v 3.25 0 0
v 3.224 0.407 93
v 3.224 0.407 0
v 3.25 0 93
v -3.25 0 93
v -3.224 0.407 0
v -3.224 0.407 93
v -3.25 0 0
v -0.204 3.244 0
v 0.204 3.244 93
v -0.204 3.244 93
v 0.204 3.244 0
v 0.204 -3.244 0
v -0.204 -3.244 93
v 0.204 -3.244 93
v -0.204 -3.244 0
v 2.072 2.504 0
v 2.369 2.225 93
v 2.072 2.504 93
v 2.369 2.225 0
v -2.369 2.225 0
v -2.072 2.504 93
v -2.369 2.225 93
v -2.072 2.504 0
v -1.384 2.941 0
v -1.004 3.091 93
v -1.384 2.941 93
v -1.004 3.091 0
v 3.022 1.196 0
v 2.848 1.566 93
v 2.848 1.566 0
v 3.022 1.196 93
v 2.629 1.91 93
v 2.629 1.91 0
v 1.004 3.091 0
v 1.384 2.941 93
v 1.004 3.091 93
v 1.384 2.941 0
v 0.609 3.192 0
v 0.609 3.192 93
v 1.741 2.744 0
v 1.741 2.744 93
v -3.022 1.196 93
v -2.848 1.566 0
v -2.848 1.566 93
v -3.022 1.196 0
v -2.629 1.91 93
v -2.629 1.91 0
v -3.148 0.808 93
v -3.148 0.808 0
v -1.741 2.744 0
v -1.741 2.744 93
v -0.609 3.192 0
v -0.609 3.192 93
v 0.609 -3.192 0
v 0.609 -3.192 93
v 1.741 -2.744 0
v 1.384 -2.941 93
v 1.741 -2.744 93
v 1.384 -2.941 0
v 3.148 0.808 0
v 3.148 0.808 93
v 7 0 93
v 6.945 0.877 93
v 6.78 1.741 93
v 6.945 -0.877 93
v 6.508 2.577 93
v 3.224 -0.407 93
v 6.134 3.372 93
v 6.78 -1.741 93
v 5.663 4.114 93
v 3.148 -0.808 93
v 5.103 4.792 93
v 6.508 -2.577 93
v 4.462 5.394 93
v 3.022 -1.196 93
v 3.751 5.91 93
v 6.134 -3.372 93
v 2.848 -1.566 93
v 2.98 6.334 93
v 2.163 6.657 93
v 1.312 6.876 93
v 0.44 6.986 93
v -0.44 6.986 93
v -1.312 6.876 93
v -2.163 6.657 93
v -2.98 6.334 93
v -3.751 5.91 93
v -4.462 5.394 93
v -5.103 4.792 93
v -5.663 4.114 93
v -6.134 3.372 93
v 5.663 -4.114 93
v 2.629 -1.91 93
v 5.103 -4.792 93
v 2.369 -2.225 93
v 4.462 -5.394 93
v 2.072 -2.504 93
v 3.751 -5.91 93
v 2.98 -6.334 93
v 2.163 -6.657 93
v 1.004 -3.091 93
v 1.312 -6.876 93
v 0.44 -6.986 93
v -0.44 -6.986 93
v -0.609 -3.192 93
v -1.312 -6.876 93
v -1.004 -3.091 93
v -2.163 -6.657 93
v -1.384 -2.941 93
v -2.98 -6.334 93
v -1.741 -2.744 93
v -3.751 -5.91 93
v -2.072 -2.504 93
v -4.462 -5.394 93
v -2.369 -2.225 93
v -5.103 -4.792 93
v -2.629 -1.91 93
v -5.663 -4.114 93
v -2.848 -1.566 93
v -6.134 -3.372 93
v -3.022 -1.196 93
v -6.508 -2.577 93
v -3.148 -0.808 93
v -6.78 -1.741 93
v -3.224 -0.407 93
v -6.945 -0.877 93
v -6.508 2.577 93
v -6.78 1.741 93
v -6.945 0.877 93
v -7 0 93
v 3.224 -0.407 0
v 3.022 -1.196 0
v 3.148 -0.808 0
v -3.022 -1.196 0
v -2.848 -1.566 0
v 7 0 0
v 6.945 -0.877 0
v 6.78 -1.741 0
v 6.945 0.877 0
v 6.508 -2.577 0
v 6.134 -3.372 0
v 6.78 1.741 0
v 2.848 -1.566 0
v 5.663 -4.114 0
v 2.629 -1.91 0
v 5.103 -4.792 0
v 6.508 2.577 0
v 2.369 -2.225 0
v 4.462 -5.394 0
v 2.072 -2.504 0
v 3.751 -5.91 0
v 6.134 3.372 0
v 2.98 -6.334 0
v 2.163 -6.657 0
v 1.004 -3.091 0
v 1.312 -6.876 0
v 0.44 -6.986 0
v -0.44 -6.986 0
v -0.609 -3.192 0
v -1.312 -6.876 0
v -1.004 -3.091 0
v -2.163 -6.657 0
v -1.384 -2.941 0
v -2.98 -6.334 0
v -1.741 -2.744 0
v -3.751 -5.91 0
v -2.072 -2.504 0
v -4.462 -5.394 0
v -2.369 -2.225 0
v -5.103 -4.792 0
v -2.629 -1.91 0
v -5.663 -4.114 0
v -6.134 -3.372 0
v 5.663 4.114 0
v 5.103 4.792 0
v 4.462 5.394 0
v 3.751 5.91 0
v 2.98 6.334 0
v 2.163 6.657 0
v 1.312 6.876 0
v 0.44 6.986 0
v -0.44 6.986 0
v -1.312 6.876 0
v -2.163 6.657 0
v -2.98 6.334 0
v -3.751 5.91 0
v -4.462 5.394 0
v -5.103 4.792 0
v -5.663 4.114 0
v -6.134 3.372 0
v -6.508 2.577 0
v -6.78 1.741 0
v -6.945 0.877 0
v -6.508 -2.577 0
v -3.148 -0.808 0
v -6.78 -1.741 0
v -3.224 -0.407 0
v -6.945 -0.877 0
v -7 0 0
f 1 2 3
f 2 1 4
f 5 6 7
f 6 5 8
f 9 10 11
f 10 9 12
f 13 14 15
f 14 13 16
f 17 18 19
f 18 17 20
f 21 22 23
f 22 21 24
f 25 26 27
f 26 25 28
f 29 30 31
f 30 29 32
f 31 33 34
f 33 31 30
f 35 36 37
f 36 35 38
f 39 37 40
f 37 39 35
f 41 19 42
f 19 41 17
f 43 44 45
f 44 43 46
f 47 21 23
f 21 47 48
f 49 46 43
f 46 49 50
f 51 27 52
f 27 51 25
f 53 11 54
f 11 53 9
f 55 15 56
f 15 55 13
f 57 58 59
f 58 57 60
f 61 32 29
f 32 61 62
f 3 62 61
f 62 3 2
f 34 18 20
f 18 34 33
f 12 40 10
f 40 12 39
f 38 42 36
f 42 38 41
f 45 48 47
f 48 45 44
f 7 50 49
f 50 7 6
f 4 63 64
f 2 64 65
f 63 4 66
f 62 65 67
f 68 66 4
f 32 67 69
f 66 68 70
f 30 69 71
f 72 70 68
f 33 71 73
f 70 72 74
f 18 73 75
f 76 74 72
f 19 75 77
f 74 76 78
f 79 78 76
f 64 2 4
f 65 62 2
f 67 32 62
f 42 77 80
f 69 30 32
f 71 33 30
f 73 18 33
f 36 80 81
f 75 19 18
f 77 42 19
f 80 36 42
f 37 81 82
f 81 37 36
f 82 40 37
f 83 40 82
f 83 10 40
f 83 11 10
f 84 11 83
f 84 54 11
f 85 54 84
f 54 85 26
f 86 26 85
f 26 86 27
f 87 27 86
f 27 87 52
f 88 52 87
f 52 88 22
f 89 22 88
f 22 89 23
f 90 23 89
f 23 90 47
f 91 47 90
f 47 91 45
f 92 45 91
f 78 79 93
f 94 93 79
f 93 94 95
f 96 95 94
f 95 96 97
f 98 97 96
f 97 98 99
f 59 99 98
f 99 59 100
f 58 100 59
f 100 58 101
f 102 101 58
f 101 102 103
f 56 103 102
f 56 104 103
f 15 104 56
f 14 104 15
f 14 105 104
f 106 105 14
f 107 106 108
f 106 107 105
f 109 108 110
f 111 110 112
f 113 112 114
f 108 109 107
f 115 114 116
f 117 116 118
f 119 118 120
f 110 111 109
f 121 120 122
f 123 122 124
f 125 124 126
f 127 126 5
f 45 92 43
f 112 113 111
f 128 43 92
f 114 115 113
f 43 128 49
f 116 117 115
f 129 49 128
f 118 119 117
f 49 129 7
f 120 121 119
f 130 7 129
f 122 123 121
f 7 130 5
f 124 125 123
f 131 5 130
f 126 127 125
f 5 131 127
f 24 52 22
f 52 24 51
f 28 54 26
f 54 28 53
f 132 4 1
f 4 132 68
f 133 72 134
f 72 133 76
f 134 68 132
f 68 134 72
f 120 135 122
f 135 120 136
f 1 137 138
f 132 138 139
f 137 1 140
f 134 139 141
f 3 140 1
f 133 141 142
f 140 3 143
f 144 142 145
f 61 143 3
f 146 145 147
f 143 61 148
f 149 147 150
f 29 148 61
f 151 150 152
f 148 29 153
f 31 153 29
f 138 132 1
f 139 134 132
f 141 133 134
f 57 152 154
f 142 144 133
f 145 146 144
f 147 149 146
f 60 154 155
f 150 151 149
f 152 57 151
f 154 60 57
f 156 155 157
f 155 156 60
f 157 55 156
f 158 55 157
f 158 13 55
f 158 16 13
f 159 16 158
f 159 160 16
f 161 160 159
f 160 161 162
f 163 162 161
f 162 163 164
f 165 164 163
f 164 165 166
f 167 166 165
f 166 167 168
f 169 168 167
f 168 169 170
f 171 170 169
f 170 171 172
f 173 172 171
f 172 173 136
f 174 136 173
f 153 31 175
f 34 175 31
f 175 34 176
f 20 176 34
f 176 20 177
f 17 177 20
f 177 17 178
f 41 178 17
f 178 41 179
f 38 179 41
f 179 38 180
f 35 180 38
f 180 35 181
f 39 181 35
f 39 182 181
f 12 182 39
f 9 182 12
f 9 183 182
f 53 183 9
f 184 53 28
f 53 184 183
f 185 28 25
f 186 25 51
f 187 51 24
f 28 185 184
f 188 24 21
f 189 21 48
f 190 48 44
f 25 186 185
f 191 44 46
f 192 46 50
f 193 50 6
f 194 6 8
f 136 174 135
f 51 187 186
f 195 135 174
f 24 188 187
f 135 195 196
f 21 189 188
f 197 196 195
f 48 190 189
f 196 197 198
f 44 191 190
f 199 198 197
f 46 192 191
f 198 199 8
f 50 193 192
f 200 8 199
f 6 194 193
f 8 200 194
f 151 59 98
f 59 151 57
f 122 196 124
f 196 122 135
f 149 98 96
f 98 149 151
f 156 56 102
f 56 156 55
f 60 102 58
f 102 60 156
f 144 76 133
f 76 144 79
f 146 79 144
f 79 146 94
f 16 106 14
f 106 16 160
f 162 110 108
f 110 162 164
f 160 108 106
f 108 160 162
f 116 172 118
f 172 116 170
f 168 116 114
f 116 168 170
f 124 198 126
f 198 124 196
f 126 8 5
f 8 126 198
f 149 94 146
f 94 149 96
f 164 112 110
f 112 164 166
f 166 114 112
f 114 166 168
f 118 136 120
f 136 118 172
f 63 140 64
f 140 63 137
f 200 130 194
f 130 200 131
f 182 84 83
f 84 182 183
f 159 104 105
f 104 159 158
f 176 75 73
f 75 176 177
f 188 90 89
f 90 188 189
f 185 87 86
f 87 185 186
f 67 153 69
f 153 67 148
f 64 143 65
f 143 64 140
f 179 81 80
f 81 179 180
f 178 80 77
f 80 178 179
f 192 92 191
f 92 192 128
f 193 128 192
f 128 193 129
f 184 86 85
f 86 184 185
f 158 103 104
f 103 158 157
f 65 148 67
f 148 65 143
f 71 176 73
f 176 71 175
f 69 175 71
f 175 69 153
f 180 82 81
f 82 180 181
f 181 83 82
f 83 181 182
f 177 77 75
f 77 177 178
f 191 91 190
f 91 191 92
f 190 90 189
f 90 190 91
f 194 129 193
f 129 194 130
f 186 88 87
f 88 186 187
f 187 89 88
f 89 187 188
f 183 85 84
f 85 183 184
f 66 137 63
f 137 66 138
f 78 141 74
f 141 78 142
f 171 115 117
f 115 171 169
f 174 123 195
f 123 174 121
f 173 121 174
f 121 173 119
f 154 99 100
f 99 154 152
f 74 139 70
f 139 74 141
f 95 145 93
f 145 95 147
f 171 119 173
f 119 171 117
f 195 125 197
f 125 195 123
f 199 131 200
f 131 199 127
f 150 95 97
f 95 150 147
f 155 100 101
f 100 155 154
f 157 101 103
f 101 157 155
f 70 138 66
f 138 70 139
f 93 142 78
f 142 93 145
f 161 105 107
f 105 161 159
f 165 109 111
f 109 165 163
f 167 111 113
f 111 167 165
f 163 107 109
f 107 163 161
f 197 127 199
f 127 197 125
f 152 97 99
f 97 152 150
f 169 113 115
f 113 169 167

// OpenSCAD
$fn = 50;


difference() {
	union() {
		cylinder(h = 93, r = 7.0000000000);
	}
	union() {
		cylinder(h = 93, r = 3.2500000000);
		cylinder(h = 93, r = 1.8000000000);
		cylinder(h = 93, r = 1.8000000000);
		cylinder(h = 93, r = 1.8000000000);
	}
}
